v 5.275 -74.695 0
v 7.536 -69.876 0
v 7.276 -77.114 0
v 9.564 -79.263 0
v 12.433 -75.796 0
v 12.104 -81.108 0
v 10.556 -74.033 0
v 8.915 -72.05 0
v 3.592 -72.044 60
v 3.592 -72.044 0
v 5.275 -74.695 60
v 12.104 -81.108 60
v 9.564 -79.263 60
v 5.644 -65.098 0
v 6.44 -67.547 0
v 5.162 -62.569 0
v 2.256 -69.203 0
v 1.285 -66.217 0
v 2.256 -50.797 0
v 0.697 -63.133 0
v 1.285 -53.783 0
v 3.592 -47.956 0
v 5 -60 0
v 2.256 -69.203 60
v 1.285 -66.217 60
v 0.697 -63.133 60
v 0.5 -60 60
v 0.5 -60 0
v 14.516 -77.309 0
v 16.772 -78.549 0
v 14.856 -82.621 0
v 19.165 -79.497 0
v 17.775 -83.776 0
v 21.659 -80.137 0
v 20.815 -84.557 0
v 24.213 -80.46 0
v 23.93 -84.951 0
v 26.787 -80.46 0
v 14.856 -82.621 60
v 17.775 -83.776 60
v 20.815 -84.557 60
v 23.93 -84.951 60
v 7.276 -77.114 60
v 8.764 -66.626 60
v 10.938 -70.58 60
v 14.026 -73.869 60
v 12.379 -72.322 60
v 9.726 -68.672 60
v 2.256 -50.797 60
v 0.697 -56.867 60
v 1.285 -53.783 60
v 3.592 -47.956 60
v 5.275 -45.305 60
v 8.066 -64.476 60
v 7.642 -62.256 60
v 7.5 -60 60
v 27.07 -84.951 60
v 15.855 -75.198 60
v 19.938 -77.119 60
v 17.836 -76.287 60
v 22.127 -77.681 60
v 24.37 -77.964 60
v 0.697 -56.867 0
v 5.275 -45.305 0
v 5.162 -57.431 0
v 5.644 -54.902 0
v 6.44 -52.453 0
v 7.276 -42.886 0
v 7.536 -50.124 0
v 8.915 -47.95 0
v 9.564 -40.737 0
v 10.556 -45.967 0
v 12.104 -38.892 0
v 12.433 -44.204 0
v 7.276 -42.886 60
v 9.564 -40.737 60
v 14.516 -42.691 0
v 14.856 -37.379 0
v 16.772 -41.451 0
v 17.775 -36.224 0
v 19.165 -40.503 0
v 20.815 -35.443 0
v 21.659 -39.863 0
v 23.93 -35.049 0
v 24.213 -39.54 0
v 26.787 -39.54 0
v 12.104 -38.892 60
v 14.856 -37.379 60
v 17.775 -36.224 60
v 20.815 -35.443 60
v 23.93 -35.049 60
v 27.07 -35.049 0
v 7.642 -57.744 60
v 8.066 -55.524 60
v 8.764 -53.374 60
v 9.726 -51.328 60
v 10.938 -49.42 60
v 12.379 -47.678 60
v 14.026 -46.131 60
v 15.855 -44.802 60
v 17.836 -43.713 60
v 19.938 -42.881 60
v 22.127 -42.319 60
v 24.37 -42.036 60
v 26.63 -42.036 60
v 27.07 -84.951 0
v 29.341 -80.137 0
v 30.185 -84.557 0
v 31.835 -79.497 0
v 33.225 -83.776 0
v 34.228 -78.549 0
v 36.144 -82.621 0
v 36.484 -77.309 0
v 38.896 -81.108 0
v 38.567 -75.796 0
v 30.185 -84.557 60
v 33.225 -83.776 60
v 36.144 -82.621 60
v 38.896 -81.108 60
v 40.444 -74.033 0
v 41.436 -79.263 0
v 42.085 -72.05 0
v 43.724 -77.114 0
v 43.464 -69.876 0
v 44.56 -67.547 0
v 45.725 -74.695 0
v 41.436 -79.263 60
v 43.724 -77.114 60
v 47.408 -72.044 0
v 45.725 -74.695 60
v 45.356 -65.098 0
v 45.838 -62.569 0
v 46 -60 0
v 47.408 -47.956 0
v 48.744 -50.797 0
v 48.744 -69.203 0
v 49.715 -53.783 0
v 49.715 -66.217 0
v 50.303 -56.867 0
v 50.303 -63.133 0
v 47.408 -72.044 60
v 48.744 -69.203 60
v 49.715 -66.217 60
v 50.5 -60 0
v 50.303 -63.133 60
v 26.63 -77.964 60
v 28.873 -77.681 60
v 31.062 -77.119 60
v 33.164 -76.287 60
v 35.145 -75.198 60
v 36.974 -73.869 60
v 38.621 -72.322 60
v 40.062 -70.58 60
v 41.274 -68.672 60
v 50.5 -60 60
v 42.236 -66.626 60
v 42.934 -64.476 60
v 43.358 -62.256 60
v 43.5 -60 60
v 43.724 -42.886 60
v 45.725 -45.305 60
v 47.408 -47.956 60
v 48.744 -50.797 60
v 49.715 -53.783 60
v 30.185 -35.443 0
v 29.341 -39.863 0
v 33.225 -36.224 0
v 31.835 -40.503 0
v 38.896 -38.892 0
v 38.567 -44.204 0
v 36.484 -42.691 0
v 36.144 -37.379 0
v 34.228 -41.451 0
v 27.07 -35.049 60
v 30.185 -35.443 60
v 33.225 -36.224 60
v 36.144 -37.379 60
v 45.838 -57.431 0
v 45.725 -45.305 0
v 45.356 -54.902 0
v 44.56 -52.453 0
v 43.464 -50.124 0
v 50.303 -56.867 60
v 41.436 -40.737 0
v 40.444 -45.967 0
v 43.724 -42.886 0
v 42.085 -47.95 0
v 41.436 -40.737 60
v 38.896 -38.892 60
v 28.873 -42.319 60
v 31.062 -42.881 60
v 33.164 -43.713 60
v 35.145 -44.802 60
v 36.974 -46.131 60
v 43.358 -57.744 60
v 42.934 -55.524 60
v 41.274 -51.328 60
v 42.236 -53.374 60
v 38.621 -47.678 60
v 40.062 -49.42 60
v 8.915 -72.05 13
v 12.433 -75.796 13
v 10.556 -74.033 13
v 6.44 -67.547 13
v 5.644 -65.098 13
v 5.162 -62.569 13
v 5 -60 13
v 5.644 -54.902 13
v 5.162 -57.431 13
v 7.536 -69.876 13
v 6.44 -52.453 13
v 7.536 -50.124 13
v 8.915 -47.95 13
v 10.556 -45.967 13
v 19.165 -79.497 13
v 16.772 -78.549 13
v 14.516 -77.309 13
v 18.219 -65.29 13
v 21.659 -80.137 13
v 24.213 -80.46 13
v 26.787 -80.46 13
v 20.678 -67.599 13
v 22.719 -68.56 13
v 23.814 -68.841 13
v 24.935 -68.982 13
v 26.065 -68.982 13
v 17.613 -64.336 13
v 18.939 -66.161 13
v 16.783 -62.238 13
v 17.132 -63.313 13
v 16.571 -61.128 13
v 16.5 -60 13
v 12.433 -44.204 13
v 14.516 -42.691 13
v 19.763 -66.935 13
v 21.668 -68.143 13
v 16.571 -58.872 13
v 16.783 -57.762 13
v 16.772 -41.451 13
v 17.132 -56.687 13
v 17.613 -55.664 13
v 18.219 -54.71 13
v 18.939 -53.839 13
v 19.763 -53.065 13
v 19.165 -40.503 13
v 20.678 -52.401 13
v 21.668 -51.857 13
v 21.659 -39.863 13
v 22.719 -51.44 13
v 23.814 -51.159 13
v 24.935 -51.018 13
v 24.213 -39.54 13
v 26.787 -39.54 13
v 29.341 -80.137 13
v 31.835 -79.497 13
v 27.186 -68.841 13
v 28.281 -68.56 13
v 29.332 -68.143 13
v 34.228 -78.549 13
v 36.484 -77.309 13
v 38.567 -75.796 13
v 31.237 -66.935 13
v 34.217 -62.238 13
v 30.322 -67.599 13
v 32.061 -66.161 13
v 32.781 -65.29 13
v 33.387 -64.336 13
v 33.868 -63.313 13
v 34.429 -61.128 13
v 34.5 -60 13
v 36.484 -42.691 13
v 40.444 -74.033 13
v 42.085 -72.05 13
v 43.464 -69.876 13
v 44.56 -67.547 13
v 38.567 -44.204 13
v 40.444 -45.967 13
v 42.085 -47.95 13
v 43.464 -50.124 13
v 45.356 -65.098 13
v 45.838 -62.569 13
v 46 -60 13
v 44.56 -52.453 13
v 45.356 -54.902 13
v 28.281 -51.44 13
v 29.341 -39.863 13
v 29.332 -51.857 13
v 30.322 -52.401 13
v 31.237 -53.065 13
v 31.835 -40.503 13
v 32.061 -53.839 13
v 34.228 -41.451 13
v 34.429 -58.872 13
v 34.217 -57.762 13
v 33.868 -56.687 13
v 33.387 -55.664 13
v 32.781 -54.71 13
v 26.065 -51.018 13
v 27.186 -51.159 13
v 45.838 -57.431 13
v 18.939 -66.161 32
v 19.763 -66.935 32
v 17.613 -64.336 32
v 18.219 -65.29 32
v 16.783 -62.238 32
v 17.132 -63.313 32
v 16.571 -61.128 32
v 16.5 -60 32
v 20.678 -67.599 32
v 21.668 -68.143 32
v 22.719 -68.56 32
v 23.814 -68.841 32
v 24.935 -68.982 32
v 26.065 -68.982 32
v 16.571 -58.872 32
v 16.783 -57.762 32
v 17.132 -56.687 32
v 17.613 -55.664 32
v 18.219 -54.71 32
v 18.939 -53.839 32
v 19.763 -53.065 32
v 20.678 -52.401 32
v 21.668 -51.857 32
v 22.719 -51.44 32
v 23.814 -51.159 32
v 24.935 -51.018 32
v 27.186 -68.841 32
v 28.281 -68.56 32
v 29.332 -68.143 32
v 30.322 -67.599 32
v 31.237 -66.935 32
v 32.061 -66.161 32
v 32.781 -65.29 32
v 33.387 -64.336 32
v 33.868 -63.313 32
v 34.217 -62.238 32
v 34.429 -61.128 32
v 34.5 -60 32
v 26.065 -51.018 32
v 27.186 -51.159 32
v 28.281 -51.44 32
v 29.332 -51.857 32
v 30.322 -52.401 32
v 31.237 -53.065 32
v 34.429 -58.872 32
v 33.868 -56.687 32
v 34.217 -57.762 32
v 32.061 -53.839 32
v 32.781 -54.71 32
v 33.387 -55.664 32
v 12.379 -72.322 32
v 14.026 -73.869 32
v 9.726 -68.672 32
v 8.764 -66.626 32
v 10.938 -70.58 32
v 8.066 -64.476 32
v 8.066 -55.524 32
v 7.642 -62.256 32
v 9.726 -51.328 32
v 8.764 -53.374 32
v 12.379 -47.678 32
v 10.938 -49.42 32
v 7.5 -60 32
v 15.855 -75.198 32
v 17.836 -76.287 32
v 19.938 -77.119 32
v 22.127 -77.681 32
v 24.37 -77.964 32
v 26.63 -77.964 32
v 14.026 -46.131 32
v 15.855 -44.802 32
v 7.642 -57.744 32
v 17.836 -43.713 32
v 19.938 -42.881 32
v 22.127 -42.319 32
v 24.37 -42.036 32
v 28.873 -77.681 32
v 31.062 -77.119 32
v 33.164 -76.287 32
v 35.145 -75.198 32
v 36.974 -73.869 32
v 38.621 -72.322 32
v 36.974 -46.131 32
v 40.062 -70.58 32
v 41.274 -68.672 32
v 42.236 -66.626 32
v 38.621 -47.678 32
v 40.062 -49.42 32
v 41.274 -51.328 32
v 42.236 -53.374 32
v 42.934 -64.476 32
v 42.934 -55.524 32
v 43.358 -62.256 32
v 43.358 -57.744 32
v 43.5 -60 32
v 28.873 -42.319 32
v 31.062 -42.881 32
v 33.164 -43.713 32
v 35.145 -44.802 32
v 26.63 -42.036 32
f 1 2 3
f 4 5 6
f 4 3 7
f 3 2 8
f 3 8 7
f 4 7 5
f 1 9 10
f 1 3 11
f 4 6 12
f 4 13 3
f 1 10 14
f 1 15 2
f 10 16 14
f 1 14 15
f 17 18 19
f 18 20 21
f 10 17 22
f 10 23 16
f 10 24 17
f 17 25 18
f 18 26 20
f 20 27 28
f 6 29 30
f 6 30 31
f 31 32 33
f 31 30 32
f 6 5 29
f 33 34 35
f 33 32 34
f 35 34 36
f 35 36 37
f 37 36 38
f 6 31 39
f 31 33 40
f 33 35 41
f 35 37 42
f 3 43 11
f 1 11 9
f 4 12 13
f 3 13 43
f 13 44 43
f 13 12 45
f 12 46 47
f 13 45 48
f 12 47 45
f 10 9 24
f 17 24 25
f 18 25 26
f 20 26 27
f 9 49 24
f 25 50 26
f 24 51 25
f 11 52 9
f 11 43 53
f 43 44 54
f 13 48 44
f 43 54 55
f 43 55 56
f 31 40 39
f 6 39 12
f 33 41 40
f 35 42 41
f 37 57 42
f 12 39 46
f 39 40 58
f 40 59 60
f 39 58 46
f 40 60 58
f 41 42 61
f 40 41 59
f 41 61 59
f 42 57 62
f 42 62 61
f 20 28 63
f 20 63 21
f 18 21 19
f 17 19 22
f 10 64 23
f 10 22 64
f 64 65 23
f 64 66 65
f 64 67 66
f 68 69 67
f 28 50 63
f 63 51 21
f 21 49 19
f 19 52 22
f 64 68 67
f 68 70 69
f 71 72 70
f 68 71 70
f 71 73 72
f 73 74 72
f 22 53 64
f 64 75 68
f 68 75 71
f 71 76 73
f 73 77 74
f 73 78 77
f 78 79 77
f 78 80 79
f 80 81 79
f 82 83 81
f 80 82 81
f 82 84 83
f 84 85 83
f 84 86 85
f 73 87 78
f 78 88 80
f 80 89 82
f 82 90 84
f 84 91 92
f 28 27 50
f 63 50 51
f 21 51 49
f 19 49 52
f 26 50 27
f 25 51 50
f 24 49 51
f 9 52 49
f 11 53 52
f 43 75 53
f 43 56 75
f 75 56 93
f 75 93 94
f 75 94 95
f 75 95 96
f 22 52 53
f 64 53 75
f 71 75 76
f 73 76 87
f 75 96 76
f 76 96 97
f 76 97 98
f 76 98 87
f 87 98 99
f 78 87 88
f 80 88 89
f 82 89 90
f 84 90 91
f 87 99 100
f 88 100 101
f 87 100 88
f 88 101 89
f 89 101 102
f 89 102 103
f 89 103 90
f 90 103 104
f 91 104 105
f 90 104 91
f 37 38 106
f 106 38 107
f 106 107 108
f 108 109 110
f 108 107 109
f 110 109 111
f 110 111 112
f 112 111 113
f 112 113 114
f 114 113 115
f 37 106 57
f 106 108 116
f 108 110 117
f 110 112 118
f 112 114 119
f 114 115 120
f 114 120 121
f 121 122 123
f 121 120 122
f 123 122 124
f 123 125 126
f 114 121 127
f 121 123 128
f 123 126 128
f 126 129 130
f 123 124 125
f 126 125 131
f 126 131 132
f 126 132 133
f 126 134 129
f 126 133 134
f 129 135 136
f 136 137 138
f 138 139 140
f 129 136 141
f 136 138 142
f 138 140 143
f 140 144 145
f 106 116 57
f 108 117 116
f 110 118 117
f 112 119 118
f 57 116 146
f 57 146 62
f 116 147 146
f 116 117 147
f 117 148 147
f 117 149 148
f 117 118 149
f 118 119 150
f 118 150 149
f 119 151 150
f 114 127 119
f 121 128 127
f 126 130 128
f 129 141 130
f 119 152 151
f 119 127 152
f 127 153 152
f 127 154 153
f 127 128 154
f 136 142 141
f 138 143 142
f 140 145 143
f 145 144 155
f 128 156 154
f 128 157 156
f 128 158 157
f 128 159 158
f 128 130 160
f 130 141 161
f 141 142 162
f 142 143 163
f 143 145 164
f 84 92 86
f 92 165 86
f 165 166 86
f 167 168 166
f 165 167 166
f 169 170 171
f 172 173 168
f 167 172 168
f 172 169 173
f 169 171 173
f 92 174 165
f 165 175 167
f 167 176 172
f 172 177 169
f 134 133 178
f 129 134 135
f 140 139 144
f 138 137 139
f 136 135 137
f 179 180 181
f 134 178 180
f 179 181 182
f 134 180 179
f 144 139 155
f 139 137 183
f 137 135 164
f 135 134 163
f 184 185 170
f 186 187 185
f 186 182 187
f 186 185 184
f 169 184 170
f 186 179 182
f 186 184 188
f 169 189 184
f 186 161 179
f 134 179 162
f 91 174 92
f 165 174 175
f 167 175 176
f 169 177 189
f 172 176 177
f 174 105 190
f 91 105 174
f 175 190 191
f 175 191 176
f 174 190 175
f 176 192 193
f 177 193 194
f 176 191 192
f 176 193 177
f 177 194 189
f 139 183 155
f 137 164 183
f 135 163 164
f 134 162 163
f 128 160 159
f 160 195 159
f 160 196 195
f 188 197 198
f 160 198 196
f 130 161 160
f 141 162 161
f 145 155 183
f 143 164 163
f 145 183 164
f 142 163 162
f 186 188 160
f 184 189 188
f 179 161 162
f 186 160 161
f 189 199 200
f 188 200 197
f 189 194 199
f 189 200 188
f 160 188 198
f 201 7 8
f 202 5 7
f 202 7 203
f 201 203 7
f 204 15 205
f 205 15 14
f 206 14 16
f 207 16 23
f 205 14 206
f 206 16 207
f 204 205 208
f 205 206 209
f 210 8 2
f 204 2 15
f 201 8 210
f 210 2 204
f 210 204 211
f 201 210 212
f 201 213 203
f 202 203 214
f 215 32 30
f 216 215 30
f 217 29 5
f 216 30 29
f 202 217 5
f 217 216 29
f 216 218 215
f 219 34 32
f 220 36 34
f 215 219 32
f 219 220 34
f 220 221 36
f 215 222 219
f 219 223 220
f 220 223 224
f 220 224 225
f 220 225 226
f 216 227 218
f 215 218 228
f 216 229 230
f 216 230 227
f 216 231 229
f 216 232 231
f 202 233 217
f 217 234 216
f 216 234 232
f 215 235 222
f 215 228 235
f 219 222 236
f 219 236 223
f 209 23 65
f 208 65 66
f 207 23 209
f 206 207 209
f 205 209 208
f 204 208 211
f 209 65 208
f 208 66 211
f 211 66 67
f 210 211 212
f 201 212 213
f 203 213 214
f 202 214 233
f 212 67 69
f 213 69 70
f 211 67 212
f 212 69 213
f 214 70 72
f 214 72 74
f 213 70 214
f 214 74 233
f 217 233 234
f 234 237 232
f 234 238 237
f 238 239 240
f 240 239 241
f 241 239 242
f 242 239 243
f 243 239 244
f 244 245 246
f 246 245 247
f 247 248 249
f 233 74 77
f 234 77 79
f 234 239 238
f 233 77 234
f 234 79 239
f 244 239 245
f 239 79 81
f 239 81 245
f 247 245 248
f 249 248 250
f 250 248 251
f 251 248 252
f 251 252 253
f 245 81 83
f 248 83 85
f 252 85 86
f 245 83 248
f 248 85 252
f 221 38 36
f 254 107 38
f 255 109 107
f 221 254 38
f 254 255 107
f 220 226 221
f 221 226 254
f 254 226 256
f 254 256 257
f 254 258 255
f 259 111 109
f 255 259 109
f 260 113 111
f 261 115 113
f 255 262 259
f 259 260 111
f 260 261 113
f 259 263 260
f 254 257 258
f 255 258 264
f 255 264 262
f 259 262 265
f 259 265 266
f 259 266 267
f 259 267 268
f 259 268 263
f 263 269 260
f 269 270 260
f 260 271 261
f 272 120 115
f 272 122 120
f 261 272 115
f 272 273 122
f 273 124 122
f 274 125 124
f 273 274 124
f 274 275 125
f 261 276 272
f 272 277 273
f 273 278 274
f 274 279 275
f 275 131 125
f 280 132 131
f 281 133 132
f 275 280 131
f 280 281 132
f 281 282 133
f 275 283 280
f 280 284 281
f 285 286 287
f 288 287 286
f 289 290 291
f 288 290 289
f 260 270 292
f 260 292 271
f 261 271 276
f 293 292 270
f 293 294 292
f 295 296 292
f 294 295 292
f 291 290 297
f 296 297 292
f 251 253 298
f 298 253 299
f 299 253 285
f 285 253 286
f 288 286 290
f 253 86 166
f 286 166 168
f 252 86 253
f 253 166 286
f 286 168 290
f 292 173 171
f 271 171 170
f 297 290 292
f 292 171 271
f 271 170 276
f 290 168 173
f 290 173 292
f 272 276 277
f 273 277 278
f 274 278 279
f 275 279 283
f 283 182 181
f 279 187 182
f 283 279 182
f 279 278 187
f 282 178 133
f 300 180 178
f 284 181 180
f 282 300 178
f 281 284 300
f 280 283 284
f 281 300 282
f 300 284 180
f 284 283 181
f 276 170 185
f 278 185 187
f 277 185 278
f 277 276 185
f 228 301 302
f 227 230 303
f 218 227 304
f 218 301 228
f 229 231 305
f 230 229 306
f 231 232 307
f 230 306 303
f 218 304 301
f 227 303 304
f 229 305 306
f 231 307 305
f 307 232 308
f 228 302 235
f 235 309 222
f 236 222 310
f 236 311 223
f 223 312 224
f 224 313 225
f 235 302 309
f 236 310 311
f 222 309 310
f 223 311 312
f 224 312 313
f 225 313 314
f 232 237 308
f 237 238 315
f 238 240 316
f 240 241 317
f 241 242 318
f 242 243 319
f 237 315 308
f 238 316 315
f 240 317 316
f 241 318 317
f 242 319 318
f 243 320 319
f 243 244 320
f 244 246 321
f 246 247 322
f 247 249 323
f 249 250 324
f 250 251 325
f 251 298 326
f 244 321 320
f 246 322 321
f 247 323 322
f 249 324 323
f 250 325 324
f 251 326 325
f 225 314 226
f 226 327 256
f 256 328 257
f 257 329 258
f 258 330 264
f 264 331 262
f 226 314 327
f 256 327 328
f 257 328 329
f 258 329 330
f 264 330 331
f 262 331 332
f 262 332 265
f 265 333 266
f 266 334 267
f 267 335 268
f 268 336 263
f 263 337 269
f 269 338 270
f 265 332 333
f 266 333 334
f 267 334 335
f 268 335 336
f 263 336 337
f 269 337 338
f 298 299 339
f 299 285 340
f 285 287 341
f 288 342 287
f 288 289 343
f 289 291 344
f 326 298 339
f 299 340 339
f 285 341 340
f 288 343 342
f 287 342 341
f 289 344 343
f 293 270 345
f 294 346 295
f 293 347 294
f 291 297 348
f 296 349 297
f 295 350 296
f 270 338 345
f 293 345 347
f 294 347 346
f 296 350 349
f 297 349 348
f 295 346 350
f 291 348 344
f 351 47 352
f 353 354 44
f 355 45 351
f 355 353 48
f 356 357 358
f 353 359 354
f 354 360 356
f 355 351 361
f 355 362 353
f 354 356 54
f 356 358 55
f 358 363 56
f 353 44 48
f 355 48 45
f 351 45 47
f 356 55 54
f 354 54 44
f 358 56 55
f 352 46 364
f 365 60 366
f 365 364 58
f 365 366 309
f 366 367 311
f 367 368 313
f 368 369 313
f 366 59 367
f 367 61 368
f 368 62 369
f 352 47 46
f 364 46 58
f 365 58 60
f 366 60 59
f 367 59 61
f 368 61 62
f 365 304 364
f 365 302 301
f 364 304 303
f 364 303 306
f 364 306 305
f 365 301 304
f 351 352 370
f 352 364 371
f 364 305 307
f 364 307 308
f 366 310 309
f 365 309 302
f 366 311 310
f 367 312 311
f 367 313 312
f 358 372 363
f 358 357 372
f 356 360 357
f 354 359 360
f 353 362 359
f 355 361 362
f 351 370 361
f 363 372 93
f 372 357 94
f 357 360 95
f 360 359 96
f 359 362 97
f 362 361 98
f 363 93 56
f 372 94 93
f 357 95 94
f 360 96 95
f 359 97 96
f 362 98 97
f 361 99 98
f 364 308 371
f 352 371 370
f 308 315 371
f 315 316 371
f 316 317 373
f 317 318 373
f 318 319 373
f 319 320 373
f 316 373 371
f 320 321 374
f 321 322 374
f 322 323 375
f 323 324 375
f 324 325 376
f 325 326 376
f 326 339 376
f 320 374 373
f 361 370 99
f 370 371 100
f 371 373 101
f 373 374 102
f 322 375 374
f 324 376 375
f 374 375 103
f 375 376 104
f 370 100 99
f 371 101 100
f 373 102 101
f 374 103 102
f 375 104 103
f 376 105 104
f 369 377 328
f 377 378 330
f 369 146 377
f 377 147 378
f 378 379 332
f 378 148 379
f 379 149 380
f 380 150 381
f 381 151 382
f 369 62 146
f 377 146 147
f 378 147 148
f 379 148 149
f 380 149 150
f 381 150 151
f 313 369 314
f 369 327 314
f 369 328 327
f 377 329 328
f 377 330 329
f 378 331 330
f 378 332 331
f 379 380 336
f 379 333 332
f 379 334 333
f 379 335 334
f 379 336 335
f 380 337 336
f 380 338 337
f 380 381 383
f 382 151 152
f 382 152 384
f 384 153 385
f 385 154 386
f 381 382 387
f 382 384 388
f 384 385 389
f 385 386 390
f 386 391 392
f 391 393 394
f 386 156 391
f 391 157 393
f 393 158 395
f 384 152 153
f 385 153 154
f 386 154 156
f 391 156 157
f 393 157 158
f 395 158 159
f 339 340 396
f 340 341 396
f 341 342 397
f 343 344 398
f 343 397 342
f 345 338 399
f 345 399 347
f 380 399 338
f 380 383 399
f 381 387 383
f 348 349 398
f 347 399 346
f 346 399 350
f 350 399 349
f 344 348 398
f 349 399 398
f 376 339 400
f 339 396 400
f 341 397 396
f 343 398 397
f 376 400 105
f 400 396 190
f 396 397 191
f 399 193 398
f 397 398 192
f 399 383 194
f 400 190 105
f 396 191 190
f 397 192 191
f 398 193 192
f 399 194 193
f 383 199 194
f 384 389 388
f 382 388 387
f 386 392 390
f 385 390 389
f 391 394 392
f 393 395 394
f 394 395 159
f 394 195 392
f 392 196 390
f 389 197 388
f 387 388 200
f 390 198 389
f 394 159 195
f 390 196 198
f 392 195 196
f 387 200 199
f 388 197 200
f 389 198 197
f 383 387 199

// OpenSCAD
//measurements

//https://www.lofty.com/pages/how-to-measure-three-dimensional-objects-including-silver-ceramics-glass-sculpture


//main body (looking from front)

main_body_height = 22;
main_body_width = 120;
main_body_depth = 51;
main_body_distance_between_two_main_bodies = 29; 

//main body tube
main_body_tube_diameter = 22;
//Tube bit

tube_bit_height = 60;
tube_bit_diameter = 50;//was 30.4
tube_bit_hole_diameter = 18;

//tube screen holder
tube_screen_holder_height = tube_bit_height-10;
tube_screen_holder_diameter = 36; //+1mm
tube_screen_holder_hole_diameter = 29;


//bearing

bearing_diameter = 41;
bearing_height = 13;

nut_height = 8.5;
nut_width = 20;


 

//threaded shaft
threaded_shaft_diameter = 12;

module tube_screen_holder(){
        cylinder(h=tube_screen_holder_height, r=(tube_screen_holder_diameter)/2, $fn=50);

}

module tube_bit(){
            cylinder(h=tube_bit_height, r=(tube_bit_diameter)/2, $fn=50);
}
module tube_bit_hole_inside(){
    cylinder(h=tube_bit_height+(main_body_height-bearing_height), r=(tube_bit_hole_diameter)/2, $fn=50);
}
    

module bearing(){
    cylinder(h=bearing_height, r=(bearing_diameter)/2, $fn=50);
}


module main_body(){
    difference(){

        translate([main_body_depth/2,-main_body_width/2,0]){
                tube_bit();}    
          
     translate([main_body_depth/2,-main_body_width/2,0]){bearing();}

     translate([main_body_depth/2,-main_body_width/2,bearing_height]){
        tube_bit_hole_inside();
        }
                  
color ("green") {translate([main_body_depth/2,-main_body_width/2,main_body_height+10]){ tube_screen_holder();}}
}
}

main_body();
